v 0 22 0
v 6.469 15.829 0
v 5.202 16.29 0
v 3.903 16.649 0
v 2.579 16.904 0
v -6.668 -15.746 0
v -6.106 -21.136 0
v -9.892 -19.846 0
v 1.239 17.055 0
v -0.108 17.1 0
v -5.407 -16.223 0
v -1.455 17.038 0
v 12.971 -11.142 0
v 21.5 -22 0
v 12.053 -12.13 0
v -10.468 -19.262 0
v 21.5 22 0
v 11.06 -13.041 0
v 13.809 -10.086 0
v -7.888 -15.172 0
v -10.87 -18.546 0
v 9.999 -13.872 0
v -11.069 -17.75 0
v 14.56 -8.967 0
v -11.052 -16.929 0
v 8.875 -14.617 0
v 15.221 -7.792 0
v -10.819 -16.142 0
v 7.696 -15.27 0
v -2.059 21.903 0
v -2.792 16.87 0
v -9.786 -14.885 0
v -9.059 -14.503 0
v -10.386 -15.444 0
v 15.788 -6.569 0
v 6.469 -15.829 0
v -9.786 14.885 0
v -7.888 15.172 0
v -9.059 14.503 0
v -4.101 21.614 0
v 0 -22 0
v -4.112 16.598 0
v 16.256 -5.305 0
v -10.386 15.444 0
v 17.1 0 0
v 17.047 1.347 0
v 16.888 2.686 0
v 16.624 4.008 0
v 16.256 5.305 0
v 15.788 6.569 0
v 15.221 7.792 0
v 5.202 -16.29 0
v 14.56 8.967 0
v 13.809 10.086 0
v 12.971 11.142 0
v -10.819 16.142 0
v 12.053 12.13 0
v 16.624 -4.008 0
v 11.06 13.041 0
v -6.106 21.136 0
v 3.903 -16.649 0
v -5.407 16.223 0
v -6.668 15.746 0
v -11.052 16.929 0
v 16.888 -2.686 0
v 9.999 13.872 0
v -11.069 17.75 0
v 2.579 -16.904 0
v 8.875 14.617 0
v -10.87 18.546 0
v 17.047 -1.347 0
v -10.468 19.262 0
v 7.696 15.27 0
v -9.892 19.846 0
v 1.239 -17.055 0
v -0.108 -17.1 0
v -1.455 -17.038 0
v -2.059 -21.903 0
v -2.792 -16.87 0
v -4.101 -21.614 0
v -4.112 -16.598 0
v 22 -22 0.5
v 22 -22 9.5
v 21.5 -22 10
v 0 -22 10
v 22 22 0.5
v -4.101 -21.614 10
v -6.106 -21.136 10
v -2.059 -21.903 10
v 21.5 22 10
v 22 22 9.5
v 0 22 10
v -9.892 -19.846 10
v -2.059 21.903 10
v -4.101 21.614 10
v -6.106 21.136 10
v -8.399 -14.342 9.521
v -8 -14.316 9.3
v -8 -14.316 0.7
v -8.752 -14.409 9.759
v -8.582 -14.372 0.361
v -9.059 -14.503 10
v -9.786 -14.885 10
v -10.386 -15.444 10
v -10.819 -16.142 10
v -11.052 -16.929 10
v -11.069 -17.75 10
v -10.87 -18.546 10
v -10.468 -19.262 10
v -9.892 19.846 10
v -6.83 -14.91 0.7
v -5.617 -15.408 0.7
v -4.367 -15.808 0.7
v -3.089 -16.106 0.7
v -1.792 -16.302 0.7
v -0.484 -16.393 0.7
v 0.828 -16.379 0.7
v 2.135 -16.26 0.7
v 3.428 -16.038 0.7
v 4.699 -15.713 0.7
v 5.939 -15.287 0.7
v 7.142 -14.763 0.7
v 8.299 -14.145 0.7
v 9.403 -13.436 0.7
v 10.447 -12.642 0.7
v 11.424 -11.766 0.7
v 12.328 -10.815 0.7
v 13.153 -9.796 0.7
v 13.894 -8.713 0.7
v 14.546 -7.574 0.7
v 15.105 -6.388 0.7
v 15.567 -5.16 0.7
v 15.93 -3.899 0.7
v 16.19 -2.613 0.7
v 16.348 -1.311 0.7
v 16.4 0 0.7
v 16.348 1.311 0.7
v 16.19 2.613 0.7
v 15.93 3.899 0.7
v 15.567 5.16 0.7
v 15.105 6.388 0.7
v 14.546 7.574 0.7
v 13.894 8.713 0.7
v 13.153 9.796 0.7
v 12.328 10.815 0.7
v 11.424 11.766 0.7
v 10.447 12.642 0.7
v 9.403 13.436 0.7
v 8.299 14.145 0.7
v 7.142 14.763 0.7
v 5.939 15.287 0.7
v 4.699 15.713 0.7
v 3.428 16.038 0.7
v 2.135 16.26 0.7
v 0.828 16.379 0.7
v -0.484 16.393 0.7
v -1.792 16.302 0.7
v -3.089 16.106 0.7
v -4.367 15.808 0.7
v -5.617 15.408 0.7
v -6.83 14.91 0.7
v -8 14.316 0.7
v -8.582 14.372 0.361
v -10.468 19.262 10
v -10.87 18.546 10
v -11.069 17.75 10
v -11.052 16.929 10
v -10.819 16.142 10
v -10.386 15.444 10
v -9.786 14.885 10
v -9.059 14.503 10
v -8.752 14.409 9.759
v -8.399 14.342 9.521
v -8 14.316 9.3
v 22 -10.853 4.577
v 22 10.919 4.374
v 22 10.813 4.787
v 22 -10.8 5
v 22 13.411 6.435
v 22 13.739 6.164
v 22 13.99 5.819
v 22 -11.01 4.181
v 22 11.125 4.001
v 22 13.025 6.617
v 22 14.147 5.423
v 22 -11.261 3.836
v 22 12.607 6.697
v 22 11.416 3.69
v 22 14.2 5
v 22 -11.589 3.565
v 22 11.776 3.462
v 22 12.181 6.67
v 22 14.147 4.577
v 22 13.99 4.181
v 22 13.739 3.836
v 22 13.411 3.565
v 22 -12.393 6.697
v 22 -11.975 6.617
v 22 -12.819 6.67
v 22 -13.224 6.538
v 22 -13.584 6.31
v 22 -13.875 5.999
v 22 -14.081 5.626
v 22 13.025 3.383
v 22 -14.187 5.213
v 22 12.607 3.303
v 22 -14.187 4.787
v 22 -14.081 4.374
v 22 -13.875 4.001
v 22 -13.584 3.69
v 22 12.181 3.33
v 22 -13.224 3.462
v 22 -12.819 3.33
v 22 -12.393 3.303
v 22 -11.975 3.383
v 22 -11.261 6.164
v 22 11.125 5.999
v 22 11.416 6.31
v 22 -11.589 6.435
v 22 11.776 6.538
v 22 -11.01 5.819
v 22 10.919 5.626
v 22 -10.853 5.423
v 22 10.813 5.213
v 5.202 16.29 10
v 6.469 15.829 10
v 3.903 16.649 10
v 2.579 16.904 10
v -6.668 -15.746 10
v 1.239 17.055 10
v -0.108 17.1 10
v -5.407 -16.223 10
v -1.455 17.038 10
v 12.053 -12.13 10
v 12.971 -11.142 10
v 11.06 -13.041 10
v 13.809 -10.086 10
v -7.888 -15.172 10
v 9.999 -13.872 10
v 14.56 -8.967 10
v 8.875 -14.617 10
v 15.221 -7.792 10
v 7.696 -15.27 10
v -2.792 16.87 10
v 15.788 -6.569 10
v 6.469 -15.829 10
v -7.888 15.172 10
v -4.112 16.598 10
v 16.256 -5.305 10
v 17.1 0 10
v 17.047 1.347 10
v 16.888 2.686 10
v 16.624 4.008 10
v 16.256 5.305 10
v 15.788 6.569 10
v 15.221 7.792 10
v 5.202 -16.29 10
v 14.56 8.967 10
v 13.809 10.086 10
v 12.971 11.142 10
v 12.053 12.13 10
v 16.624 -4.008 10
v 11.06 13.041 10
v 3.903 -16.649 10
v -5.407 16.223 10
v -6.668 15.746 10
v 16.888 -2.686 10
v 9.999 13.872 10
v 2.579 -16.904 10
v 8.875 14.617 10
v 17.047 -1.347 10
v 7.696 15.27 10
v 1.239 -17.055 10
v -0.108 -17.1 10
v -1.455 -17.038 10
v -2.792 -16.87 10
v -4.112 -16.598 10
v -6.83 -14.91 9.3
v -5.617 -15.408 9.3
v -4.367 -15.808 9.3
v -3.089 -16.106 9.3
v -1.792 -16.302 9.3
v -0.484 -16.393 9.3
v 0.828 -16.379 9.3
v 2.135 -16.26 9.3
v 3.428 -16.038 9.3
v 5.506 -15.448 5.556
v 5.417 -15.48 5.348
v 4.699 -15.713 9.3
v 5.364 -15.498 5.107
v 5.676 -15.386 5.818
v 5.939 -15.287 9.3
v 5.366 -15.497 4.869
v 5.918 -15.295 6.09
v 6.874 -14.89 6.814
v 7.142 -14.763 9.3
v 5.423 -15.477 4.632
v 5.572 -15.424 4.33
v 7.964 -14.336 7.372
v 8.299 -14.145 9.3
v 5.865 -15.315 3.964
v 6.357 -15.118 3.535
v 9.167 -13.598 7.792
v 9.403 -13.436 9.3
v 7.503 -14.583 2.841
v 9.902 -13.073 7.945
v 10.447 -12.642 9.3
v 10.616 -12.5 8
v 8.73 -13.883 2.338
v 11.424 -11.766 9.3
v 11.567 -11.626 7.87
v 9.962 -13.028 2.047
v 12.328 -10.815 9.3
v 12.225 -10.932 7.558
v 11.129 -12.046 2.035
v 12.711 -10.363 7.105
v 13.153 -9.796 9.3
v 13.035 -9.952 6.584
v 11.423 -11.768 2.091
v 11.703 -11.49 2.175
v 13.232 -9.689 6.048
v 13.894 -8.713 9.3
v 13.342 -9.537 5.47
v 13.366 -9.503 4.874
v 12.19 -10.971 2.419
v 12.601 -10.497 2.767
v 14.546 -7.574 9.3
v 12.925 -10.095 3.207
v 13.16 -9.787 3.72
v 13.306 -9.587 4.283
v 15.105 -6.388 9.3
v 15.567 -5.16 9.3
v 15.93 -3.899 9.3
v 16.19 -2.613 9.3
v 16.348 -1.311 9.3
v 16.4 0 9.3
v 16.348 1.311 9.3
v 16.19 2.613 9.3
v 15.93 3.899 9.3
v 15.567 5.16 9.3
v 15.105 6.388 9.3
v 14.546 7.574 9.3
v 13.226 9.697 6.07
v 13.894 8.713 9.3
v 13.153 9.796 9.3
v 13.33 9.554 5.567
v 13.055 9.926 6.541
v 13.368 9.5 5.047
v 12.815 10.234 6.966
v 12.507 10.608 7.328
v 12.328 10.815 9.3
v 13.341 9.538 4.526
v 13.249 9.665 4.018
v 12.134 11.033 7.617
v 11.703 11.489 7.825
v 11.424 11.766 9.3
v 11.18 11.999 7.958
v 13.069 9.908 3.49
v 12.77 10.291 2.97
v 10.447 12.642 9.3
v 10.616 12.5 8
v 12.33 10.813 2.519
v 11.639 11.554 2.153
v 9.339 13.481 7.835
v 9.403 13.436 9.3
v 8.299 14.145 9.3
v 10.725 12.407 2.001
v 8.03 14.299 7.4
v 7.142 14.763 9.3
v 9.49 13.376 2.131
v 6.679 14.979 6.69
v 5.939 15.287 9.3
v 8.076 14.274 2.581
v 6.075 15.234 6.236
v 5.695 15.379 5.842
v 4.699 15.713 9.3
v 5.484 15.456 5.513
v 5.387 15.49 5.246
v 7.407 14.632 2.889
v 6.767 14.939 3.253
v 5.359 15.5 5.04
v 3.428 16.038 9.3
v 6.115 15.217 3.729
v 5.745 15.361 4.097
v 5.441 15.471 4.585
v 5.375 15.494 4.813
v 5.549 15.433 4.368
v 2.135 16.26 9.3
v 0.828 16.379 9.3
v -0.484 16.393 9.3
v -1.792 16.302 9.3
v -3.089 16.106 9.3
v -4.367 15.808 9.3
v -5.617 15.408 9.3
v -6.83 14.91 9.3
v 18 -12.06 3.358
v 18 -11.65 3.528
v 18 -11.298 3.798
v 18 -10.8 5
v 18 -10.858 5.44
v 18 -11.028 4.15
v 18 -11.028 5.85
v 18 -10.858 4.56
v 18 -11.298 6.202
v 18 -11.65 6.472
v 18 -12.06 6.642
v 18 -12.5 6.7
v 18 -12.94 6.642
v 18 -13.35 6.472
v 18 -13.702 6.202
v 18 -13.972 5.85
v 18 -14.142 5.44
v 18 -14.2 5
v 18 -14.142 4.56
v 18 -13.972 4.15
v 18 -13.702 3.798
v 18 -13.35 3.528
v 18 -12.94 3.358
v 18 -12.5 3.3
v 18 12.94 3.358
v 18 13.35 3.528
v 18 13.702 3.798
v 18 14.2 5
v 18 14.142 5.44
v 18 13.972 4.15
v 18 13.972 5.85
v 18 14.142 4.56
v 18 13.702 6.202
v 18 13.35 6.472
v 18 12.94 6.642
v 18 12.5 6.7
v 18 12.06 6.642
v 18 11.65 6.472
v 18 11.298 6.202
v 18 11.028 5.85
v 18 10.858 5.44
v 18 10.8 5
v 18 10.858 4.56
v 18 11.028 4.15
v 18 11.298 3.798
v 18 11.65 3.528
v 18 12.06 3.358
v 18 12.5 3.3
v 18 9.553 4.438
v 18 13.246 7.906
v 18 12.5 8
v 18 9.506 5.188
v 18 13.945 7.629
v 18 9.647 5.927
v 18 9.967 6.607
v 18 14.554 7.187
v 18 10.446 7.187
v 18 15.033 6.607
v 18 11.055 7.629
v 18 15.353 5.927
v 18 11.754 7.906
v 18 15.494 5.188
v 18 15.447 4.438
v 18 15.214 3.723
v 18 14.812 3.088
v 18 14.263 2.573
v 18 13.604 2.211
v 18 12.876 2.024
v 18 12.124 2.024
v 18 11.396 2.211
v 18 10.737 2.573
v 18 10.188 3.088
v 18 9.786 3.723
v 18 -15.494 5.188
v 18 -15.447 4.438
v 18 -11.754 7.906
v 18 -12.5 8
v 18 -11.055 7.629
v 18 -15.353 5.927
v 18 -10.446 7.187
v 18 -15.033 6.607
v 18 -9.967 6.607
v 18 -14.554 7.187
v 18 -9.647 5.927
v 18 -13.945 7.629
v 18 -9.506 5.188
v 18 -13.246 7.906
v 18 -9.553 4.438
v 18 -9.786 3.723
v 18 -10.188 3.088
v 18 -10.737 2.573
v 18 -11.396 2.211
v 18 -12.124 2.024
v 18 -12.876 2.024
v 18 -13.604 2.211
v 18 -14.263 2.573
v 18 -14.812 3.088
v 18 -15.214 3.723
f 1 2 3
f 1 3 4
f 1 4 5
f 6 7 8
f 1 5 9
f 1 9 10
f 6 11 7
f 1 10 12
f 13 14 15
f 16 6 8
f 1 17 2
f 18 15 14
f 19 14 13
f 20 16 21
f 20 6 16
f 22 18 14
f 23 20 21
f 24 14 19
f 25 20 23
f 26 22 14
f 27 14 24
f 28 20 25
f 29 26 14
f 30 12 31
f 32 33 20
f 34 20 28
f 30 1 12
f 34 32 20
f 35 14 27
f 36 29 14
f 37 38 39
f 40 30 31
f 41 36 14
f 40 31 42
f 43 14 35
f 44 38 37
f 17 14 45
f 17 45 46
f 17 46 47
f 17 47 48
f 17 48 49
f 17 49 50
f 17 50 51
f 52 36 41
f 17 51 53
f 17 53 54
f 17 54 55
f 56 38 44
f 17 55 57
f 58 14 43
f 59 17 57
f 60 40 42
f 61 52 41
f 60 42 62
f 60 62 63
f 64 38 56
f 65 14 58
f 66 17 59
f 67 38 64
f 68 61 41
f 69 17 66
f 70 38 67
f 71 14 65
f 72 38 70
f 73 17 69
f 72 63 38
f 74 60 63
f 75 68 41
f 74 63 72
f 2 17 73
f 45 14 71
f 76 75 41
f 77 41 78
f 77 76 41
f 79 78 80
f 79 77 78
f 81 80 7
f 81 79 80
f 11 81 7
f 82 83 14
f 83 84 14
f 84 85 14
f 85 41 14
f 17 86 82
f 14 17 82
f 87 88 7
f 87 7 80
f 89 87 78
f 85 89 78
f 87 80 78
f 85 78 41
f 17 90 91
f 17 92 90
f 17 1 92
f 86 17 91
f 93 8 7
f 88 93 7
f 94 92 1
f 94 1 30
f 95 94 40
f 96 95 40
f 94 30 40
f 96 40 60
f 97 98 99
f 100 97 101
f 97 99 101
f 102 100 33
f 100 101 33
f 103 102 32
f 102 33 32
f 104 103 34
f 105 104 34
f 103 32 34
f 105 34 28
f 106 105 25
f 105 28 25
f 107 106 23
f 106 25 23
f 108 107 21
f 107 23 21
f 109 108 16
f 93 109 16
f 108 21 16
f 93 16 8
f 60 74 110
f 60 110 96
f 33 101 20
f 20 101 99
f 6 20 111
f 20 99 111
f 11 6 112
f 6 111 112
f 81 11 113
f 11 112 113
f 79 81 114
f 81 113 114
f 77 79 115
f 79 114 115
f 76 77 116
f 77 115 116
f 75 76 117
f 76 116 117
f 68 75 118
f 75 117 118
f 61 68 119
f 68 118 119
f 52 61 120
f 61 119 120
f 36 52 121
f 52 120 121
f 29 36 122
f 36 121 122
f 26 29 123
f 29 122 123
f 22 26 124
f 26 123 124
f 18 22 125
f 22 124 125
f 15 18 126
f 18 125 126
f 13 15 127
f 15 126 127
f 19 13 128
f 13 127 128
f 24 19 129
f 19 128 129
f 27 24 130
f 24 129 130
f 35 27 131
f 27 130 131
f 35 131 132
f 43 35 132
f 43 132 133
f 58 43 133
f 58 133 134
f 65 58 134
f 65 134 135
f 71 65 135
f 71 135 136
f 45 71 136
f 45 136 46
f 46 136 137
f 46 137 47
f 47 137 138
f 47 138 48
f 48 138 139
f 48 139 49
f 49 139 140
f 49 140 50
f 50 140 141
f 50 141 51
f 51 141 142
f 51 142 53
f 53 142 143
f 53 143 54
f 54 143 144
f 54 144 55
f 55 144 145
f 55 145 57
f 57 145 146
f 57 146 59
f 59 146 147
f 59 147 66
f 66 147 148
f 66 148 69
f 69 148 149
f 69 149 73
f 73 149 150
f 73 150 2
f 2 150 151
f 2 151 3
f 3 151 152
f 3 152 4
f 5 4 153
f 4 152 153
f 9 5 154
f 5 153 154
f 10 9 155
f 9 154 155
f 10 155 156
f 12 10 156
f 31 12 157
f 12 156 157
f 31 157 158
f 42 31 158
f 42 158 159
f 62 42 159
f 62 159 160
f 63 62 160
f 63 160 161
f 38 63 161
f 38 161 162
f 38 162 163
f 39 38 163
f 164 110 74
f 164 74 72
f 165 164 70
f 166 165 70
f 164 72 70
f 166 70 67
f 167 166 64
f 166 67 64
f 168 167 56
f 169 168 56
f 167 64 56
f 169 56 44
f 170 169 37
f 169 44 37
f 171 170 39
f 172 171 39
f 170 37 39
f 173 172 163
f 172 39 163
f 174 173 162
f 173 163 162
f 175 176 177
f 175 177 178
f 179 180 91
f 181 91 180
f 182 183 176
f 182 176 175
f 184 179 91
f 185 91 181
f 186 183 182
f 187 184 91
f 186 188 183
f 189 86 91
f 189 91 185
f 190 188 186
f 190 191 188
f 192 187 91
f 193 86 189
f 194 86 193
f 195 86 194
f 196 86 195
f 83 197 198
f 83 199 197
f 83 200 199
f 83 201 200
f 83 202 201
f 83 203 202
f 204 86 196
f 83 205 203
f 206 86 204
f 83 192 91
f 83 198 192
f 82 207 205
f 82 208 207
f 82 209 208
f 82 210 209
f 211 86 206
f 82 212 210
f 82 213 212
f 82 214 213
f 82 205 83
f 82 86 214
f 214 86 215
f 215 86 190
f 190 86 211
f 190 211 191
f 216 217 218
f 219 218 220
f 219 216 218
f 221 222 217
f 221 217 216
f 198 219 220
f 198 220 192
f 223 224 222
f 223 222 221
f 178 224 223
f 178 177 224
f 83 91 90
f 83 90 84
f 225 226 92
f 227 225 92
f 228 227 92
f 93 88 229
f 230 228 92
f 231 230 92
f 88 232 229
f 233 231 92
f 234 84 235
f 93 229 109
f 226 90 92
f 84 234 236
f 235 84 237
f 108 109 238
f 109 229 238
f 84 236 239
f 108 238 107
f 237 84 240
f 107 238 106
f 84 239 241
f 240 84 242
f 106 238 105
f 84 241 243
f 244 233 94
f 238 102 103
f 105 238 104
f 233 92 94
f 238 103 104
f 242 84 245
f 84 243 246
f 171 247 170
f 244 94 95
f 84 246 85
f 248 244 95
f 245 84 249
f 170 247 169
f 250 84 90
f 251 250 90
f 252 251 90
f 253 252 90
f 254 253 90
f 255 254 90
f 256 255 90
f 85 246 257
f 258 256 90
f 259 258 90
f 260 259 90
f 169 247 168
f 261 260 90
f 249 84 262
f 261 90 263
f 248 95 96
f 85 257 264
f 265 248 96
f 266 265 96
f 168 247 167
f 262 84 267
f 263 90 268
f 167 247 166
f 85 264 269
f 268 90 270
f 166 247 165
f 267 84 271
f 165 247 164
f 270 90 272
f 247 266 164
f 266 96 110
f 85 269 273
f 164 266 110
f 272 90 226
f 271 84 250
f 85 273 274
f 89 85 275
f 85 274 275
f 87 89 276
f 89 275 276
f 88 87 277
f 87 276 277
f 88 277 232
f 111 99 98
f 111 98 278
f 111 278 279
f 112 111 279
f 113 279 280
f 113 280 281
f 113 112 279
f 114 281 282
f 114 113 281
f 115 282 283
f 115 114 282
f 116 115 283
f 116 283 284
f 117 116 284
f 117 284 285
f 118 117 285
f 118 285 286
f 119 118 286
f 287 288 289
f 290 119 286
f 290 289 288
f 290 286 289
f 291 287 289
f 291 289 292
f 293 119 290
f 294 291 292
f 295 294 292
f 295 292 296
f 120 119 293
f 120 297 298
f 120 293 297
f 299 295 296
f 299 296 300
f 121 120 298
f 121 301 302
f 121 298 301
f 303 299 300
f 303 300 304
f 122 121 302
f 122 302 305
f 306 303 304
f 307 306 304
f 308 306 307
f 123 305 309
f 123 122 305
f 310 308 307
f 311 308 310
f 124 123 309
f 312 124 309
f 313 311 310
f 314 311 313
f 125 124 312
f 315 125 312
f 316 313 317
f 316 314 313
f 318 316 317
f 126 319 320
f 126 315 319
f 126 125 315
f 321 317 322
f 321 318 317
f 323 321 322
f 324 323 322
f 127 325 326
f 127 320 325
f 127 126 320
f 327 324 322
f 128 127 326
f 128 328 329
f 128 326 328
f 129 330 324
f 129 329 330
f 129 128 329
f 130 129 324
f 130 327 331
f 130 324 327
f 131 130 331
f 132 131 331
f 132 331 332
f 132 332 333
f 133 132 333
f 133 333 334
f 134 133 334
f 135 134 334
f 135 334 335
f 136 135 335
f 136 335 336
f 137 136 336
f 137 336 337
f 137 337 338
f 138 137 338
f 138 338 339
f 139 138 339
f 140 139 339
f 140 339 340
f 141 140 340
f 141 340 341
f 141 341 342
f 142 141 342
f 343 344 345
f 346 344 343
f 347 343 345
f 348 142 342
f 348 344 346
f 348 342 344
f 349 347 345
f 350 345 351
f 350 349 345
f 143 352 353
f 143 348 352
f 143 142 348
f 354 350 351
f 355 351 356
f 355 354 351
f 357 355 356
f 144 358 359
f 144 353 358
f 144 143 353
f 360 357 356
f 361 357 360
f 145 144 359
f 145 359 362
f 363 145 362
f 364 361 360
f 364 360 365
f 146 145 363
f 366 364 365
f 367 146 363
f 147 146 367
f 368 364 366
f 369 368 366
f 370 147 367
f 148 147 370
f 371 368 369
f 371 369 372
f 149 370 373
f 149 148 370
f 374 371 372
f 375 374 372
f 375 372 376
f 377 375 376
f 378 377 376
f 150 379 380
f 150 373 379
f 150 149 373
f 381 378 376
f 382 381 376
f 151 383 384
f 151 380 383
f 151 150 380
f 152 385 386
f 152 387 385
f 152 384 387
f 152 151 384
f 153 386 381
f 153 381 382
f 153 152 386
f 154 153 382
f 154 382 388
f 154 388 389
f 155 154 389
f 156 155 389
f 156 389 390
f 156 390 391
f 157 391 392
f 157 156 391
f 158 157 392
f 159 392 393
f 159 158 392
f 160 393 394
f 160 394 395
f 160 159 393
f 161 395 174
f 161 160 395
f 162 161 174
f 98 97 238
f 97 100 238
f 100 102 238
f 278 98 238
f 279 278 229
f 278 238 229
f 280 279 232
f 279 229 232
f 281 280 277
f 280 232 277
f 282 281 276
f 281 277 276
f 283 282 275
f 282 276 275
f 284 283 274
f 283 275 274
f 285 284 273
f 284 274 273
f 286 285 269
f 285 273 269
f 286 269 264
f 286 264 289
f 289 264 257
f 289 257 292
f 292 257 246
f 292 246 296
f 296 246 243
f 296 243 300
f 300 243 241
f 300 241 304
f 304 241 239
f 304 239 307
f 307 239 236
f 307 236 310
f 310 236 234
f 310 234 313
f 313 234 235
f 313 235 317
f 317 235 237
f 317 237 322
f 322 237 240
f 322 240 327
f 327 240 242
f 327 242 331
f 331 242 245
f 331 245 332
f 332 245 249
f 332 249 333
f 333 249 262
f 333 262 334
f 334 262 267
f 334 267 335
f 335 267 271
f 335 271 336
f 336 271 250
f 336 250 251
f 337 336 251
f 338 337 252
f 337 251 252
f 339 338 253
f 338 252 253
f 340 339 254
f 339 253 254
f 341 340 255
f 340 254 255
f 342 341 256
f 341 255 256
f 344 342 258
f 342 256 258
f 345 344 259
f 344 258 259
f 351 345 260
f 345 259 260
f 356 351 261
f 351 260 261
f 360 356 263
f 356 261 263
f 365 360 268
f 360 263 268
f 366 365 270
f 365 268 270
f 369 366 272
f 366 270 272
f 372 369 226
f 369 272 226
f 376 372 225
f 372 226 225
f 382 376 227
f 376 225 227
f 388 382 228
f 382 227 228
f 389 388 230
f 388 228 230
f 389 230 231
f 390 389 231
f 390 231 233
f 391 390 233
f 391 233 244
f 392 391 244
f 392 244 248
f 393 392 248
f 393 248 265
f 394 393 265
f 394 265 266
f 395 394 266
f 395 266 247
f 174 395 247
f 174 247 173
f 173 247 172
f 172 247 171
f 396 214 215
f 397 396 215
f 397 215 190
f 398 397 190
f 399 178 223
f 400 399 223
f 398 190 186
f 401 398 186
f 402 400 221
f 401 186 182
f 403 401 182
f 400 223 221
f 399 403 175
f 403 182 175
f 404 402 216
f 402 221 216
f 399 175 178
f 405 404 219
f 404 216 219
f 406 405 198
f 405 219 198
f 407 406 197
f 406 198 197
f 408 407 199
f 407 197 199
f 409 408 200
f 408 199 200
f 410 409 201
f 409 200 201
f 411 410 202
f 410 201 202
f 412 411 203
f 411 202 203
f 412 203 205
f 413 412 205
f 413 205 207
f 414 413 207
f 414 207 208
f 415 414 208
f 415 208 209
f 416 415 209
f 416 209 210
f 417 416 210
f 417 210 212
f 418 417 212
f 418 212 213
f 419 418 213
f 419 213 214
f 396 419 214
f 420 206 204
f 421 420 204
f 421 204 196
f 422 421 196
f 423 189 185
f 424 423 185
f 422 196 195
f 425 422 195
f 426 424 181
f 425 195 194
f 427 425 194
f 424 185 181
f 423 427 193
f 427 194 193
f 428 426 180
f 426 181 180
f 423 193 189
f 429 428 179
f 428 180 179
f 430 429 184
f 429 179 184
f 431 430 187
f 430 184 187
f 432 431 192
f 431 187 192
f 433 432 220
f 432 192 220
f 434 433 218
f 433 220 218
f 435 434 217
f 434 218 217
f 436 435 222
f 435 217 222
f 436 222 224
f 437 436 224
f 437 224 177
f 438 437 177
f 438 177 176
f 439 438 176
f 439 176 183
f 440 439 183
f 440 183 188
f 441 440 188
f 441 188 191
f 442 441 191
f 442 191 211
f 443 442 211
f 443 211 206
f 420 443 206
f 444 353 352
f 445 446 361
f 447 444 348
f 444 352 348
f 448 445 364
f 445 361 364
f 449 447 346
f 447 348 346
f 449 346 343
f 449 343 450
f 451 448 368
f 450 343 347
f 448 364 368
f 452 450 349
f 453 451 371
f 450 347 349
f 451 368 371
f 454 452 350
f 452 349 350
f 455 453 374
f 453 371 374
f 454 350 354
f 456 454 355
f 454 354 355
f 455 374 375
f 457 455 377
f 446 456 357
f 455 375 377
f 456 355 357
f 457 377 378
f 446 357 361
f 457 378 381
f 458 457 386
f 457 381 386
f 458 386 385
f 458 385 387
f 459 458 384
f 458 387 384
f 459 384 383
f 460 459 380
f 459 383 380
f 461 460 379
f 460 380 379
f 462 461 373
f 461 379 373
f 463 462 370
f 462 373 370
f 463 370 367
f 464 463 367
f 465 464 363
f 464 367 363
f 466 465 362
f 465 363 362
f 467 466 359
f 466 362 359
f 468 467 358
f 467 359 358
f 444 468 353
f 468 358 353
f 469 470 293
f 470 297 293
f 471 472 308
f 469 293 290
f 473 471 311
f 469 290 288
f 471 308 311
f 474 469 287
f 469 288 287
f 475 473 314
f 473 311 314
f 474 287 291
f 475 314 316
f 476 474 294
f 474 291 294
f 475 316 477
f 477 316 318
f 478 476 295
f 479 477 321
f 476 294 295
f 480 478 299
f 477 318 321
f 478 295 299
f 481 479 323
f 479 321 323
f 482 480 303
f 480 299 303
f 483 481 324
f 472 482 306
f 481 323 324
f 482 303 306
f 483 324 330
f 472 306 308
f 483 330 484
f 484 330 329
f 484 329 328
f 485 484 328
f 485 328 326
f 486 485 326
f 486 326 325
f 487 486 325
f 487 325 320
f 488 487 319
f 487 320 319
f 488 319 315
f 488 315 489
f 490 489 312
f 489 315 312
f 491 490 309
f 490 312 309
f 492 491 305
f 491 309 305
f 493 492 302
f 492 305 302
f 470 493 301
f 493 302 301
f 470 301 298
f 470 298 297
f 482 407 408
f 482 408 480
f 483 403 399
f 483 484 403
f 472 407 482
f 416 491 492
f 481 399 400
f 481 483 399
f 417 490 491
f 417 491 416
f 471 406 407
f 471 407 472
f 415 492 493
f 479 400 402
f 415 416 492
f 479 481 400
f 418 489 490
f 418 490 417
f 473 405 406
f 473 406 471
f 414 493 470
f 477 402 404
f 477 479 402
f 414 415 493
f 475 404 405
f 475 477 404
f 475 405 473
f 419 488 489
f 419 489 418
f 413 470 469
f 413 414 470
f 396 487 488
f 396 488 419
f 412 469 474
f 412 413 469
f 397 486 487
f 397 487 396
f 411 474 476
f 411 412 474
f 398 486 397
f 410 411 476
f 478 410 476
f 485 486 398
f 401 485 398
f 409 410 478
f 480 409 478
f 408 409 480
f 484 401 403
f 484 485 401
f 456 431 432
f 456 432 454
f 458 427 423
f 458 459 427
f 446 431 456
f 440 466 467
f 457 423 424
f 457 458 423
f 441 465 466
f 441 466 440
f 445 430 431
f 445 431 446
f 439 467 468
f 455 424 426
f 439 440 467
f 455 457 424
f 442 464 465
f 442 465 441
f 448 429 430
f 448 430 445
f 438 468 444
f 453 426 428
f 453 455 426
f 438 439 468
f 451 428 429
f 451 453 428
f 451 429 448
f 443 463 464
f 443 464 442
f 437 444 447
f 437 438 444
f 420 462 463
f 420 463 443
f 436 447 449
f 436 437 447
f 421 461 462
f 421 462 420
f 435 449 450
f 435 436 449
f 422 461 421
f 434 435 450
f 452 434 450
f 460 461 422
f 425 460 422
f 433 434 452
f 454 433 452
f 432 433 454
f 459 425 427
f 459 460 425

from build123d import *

# Parameters (mm, degrees)
CYLINDER_R              = 3
CYLINDER_DEPTH          = 15
CYLINDER_PITCH_ANGLE    = -90
CYLINDER001_R           = 3
CYLINDER001_DEPTH       = 15
CYLINDER001_PITCH_ANGLE = -90
PAD_DEPTH               = 10
SKETCH001_R             = 1.7
POCKET_DEPTH            = 20
CHAMFER_SIZE            = 2
CHAMFER001_SIZE         = 0.7
CHAMFER002_SIZE         = 0.5


with BuildPart() as cilindro:
    # Cylinder → Cylinder (new body)
    with BuildSketch(Plane.XY):
        Circle(CYLINDER_R)
    extrude(amount=CYLINDER_DEPTH)


with BuildPart() as cilindro_1:
    # Cylinder pitch: moved
    add(cilindro.part.rotate(Axis((0, 0, 0), (0, 1, 0)), CYLINDER_PITCH_ANGLE))


with BuildPart() as cilindro_2:
    # Cylinder placement: moved
    add(cilindro_1.part.moved(Location((18, 12.5, 5))))


with BuildPart() as fusion:
    # Cylinder001 → Cylinder001 (new body)
    with BuildSketch(Plane.XY):
        Circle(CYLINDER001_R)
    extrude(amount=CYLINDER001_DEPTH)


with BuildPart() as fusion_1:
    # Cylinder001 pitch: moved
    add(fusion.part.rotate(Axis((0, 0, 0), (0, 1, 0)), CYLINDER001_PITCH_ANGLE))


with BuildPart() as fusion_2:
    # Cylinder001 placement: moved
    add(fusion_1.part.moved(Location((18, -12.5, 5))))

    # Fusion: union Cilindro
    add(cilindro_2.part)


with BuildPart() as chamfer002:
    # Sketch → Pad (new body)
    with BuildSketch(Plane.XY):
        with BuildLine():
            ThreePointArc((-8, -14.316424), (16.4, 0), (-8, 14.316424))
            ThreePointArc((-8, 20.493902), (-11.088739, 17.405163), (-8, 14.316424))
            ThreePointArc((0, 22), (-4.070268, 21.620197), (-8, 20.493902))
            Line((0, 22), (22, 22))
            Line((22, 22), (22, -22))
            Line((0, -22), (22, -22))
            ThreePointArc((-8, -20.493902), (-4.070268, -21.620197), (0, -22))
            ThreePointArc((-8, -14.316424), (-11.08874, -17.405163), (-8, -20.493902))
        make_face()
    extrude(amount=PAD_DEPTH)

    # Sketch001 → Pocket (cut)
    with BuildSketch(Plane.YZ.offset(22)):
        with Locations((-12.5, 5)):
            Circle(SKETCH001_R)
        with Locations((12.5, 5)):
            Circle(SKETCH001_R)
    extrude(amount=-POCKET_DEPTH, mode=Mode.SUBTRACT)

    # Cut: cut Fusion
    add(fusion_2.part, mode=Mode.SUBTRACT)

    # Chamfer
    chamfer_edges = [chamfer002.edges().sort_by_distance(p)[0] for p in [
        (-8, -20.493902, 5),
        (-8, 20.493902, 5),
    ]]
    chamfer(chamfer_edges, length=CHAMFER_SIZE)

    # Chamfer001
    chamfer001_edges = [chamfer002.edges().sort_by_distance(p)[0] for p in [
        (16.4, 0, 10),
        (16.4, 0, 0),
    ]]
    chamfer(chamfer001_edges, length=CHAMFER001_SIZE)

    # Chamfer002
    chamfer002_edges = [chamfer002.edges().sort_by_distance(p)[0] for p in [
        (22, 0, 0),
        (22, 0, 10),
    ]]
    chamfer(chamfer002_edges, length=CHAMFER002_SIZE)


solid = chamfer002.part
